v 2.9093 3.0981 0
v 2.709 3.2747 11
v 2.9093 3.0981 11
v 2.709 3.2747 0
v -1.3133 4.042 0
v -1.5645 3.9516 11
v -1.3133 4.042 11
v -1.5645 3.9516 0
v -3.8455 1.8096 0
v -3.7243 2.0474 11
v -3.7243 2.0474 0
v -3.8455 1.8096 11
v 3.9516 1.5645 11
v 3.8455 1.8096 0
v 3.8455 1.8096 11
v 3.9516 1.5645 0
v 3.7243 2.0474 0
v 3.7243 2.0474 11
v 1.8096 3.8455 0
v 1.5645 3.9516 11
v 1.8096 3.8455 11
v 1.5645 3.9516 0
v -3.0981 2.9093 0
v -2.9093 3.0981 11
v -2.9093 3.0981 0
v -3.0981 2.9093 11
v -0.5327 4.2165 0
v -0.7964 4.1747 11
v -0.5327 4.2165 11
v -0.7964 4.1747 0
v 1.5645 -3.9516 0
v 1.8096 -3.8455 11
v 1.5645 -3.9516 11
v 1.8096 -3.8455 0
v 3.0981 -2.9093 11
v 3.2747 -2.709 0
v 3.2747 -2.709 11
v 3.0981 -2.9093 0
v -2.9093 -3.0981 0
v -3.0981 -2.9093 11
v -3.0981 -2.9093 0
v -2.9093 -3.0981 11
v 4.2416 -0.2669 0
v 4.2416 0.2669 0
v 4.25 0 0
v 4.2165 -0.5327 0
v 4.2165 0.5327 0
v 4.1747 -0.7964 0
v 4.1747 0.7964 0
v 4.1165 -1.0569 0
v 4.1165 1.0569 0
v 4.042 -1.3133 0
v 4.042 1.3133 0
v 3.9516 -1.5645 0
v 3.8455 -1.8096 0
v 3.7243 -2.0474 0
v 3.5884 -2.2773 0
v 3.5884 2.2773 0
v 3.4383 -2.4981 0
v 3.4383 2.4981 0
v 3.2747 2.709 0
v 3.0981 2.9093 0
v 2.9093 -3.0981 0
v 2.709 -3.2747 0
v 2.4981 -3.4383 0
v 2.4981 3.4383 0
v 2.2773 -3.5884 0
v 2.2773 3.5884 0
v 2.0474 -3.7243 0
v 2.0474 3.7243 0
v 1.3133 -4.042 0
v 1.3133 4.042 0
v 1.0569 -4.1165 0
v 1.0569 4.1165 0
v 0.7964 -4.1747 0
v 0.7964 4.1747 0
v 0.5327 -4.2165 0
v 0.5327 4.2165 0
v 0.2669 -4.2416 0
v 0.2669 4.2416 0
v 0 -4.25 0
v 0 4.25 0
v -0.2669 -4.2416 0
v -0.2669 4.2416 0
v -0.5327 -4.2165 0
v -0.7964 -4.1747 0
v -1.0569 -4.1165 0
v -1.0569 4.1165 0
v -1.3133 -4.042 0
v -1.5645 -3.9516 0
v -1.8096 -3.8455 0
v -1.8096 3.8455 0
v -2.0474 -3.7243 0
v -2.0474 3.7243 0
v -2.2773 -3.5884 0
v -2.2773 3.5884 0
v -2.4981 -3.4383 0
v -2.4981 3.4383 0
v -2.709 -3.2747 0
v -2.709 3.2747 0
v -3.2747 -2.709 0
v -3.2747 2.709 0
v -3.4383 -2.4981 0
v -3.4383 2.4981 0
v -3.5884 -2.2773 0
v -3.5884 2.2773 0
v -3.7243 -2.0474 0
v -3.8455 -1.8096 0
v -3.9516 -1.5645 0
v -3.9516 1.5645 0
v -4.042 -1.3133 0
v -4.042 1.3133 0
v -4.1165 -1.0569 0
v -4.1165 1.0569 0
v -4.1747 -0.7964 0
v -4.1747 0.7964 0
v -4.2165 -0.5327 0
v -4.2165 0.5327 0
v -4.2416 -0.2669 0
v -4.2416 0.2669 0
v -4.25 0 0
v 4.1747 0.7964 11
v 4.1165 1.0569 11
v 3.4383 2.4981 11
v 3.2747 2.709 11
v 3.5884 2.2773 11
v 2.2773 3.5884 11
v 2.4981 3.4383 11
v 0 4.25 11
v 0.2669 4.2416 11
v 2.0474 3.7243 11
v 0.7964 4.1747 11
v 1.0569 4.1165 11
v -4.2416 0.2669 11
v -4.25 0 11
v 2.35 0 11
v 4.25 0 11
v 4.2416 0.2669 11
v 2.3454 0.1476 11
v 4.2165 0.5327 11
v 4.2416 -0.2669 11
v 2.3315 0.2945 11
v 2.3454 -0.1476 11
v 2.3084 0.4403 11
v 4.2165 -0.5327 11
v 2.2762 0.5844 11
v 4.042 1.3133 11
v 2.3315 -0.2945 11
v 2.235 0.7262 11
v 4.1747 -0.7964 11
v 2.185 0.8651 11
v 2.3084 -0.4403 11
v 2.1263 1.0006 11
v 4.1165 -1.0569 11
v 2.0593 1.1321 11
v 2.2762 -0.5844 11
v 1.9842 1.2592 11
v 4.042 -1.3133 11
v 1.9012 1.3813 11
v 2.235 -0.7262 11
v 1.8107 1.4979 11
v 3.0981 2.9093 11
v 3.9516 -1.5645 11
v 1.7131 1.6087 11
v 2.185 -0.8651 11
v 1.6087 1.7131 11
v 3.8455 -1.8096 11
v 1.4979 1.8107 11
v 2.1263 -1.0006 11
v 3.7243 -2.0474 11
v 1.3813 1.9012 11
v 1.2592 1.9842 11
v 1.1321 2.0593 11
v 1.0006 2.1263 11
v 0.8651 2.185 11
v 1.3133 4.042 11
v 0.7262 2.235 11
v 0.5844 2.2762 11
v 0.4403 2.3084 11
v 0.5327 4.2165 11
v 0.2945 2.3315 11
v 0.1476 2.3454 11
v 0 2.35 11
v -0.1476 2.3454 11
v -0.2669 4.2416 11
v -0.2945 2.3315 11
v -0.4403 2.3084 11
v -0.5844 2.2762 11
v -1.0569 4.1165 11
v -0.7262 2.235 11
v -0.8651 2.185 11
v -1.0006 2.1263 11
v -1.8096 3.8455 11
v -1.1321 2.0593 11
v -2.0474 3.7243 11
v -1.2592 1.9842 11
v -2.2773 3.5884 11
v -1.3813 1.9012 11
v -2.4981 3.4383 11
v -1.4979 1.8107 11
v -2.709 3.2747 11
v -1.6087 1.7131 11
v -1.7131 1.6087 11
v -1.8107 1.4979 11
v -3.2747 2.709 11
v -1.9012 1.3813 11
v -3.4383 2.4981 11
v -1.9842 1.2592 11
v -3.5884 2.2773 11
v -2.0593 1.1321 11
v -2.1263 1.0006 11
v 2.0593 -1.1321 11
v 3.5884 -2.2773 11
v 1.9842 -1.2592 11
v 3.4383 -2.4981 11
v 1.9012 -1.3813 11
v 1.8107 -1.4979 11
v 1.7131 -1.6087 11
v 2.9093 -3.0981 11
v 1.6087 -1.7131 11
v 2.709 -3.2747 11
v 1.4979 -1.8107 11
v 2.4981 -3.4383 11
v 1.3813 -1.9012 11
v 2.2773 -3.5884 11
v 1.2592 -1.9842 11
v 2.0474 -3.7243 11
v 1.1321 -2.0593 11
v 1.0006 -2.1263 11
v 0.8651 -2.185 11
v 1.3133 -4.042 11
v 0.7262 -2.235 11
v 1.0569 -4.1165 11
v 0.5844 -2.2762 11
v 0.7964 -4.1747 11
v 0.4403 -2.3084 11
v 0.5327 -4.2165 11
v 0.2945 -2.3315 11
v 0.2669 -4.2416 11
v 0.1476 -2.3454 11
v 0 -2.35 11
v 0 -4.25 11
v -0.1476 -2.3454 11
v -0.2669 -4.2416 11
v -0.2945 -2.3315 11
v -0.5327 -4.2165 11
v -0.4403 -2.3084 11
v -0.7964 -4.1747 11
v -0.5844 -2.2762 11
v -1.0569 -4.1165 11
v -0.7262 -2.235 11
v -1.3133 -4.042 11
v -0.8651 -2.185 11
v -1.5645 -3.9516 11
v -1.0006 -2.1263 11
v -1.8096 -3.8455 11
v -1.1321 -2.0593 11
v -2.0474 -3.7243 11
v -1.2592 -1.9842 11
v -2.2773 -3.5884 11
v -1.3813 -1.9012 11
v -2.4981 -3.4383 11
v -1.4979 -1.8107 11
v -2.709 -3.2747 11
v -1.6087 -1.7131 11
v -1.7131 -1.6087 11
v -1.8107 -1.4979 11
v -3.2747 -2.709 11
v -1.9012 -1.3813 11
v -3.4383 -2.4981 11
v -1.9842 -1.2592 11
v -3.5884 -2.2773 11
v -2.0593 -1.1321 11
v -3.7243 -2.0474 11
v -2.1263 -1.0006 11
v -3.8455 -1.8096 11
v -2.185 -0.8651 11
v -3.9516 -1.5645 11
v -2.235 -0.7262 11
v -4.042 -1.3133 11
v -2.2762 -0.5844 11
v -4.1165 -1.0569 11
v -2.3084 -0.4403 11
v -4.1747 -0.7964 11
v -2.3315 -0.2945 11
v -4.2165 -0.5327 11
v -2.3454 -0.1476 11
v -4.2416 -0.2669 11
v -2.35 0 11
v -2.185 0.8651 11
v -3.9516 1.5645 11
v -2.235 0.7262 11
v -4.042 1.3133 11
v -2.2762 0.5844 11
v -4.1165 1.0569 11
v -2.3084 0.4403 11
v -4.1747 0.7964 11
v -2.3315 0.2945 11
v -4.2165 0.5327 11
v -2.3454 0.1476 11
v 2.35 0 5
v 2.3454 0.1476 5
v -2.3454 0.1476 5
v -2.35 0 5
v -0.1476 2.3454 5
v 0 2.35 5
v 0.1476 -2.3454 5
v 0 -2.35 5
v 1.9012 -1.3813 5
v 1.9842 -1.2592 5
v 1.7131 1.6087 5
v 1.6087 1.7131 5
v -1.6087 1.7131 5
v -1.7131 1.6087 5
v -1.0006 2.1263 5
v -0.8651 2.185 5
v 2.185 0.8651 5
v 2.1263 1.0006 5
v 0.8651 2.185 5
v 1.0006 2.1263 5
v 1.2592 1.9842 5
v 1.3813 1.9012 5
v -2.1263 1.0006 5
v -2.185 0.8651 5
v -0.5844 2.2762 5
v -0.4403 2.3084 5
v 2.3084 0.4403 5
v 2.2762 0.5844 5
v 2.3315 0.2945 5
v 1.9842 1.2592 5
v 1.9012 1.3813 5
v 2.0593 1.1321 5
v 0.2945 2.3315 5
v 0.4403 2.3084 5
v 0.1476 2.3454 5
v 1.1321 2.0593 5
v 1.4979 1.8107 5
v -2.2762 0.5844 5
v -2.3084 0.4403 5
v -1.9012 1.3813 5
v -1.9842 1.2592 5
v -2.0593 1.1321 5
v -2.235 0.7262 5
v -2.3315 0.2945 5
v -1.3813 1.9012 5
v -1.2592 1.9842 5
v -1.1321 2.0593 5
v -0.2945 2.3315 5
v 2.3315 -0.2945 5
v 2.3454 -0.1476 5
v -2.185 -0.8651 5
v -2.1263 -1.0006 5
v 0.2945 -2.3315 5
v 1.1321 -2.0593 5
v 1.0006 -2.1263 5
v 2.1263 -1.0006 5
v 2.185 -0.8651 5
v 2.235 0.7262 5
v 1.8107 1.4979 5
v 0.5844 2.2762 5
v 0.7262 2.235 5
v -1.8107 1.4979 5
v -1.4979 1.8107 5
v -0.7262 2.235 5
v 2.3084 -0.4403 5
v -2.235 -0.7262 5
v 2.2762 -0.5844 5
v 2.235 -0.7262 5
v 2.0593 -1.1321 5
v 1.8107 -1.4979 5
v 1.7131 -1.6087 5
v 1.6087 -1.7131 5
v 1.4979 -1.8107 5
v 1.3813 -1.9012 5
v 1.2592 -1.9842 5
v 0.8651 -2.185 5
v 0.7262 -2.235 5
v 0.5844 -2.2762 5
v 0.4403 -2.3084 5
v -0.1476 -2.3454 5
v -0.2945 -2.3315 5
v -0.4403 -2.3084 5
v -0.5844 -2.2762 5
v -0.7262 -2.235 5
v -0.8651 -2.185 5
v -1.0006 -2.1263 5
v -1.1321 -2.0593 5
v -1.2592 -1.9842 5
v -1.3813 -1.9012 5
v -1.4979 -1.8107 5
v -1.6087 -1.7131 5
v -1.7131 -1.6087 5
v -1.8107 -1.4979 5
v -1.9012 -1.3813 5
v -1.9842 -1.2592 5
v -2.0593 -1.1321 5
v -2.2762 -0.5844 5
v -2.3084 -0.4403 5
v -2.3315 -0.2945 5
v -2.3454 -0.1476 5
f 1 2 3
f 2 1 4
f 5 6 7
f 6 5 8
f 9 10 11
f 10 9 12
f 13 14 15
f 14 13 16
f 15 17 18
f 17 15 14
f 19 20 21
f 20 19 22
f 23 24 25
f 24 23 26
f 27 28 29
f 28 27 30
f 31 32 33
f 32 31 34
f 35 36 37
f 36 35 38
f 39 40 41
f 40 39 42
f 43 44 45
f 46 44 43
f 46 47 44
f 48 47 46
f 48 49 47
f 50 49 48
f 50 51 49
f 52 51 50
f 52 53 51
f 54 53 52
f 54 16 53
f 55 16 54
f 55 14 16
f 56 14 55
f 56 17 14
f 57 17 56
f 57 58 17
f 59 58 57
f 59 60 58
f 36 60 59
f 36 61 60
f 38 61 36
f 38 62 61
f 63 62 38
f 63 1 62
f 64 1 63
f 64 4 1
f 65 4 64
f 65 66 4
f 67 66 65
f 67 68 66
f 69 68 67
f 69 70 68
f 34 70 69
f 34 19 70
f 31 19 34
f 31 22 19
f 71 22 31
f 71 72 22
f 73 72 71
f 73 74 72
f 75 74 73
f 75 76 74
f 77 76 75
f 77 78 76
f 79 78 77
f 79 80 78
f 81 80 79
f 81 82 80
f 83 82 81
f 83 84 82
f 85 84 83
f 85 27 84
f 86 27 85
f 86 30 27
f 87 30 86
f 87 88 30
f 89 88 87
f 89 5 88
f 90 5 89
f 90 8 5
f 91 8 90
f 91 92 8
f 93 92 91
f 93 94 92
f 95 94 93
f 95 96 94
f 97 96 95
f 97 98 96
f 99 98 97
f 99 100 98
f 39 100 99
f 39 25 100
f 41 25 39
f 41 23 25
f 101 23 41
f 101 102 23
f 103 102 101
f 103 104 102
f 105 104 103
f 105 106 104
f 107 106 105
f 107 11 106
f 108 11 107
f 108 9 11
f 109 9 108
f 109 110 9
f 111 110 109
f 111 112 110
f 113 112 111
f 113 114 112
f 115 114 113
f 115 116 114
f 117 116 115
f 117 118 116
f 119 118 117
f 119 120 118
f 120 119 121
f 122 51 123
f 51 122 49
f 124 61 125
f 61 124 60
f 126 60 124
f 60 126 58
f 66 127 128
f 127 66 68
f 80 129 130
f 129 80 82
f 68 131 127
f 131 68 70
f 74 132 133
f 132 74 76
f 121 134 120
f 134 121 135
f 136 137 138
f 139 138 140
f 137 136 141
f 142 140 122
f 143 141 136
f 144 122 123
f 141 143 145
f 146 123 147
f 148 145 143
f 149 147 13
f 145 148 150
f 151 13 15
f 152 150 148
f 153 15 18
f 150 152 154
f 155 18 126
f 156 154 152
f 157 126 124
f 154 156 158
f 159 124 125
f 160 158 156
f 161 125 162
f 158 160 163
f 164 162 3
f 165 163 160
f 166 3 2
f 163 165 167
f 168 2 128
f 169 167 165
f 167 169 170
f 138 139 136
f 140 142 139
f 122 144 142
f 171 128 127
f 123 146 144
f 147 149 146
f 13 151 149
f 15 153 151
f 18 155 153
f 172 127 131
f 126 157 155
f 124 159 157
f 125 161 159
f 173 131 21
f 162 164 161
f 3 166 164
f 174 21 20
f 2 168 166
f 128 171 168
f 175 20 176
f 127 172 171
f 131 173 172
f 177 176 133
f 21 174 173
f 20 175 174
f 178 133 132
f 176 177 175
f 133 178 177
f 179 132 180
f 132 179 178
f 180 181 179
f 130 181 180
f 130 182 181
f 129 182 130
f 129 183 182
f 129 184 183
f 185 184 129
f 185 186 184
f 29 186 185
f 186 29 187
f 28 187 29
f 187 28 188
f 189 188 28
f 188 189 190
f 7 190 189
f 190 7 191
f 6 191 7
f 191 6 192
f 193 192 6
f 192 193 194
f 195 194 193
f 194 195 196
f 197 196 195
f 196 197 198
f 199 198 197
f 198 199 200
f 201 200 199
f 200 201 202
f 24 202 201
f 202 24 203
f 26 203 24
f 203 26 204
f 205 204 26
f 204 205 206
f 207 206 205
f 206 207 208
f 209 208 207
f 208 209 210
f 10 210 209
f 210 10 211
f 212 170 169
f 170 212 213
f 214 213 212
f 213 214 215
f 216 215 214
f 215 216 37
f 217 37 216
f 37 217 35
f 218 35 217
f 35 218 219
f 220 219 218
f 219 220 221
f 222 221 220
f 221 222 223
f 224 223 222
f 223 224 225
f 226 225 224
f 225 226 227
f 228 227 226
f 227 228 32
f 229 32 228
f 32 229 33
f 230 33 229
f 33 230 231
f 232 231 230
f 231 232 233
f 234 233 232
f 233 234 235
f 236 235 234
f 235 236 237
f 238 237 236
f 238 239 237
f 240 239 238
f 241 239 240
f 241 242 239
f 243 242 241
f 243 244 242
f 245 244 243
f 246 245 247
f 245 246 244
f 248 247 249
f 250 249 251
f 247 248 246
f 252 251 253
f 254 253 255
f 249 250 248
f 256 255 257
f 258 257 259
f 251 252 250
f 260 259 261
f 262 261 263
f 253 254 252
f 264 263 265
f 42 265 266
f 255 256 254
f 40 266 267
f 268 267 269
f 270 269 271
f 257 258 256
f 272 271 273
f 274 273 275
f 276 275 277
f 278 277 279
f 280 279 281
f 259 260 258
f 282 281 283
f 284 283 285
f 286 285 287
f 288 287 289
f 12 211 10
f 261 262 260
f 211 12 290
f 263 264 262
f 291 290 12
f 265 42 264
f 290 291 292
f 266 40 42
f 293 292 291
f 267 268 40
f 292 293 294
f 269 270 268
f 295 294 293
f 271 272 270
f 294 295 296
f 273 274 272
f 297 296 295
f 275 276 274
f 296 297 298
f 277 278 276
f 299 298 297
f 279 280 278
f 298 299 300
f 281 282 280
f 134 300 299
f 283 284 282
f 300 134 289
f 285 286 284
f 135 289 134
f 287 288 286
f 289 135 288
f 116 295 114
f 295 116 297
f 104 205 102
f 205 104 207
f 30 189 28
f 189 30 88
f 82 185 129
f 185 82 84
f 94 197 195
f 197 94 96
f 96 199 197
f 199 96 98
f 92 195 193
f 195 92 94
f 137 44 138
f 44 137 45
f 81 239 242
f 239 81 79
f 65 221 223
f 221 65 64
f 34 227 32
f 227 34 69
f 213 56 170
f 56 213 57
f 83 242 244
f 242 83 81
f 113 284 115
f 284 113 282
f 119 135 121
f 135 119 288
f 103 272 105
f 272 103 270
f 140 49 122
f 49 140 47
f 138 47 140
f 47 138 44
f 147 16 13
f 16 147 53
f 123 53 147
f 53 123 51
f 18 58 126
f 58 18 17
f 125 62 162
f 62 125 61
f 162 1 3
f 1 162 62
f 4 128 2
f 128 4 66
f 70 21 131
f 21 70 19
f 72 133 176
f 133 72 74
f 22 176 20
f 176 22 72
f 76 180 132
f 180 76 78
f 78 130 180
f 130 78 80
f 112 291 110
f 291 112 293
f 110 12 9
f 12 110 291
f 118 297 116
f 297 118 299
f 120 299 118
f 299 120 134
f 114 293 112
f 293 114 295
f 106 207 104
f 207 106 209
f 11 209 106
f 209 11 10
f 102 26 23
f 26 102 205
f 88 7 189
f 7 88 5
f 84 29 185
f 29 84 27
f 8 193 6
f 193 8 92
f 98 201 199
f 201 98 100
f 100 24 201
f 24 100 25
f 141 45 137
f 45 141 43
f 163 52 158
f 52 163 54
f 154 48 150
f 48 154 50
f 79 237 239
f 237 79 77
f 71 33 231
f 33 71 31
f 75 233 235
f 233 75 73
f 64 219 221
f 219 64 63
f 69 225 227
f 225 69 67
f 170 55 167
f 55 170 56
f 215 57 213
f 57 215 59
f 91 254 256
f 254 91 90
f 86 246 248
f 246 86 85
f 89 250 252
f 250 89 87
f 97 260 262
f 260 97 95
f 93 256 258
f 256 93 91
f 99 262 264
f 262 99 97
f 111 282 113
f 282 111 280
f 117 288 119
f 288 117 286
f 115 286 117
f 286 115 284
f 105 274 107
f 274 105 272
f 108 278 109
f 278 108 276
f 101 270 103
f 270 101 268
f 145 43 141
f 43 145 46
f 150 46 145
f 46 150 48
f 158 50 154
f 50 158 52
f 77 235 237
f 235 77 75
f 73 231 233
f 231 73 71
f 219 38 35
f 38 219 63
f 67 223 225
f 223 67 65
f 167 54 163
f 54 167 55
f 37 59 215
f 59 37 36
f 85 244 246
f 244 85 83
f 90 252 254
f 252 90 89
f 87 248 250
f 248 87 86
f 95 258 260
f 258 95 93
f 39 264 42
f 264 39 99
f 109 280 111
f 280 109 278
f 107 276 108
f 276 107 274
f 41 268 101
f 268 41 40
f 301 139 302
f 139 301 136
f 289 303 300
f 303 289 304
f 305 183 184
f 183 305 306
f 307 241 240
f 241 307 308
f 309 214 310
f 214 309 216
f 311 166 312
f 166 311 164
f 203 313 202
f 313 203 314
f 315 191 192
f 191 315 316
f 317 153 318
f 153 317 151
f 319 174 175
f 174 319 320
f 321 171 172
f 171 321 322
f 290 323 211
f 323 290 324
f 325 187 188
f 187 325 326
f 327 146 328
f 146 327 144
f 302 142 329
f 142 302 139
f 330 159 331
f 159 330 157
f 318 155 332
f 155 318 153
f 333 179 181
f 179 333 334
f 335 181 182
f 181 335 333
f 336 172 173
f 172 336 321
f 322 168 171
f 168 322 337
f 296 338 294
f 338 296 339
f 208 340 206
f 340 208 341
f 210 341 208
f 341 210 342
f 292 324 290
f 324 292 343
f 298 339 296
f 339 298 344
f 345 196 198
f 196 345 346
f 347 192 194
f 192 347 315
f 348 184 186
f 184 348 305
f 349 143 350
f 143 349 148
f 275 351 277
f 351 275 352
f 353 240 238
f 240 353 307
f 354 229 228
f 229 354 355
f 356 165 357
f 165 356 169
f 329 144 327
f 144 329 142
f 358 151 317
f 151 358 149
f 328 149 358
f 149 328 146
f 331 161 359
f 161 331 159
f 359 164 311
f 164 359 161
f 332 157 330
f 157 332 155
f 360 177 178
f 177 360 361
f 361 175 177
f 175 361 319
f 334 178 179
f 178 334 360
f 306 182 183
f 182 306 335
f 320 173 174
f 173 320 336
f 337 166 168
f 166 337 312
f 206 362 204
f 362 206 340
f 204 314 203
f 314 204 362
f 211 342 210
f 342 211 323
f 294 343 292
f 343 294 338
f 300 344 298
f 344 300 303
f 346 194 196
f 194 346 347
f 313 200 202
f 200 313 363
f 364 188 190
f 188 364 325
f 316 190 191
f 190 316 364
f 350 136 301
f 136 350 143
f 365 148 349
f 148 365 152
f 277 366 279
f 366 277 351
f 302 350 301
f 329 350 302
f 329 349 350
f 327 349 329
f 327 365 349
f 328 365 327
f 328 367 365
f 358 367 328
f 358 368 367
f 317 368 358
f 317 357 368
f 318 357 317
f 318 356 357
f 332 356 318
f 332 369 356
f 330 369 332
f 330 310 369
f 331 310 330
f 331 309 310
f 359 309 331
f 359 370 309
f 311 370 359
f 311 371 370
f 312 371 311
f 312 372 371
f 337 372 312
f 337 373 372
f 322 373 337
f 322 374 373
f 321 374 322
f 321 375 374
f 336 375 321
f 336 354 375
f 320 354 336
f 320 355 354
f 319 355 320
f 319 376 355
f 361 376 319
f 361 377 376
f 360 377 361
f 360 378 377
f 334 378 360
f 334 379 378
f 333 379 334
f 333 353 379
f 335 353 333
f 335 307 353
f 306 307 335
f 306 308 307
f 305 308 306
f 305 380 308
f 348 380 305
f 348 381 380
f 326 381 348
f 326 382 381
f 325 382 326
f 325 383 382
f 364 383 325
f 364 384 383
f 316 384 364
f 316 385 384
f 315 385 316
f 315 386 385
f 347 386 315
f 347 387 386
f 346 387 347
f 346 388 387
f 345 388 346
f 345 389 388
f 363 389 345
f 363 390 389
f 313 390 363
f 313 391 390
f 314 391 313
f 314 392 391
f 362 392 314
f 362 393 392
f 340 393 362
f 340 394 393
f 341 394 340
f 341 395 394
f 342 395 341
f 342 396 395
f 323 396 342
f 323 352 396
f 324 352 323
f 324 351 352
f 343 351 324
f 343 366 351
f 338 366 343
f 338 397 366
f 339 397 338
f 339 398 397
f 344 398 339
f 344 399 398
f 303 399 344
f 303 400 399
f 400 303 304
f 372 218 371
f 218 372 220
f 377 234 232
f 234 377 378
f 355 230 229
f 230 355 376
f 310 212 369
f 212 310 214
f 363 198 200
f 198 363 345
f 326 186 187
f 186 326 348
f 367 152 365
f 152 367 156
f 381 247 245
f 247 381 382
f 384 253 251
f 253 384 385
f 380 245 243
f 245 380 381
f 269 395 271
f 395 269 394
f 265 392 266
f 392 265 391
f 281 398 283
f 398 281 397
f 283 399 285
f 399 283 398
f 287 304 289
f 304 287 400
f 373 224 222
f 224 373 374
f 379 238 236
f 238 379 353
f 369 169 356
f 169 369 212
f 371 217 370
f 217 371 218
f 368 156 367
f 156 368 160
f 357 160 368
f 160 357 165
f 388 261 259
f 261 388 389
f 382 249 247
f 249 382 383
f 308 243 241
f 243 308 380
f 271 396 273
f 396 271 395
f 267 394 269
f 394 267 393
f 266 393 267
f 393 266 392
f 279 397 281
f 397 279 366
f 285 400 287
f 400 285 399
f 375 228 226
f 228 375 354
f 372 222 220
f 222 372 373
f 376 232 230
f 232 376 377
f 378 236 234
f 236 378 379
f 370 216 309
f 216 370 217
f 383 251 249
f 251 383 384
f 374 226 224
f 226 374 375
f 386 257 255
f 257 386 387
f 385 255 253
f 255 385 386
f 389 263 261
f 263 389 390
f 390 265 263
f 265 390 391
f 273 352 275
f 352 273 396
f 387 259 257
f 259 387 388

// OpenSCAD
$fn=100;

difference() {
    cylinder(d=8.5,h=11);
    translate([0,0,11-6]) cylinder(d=5-0.3,h=6);
}
